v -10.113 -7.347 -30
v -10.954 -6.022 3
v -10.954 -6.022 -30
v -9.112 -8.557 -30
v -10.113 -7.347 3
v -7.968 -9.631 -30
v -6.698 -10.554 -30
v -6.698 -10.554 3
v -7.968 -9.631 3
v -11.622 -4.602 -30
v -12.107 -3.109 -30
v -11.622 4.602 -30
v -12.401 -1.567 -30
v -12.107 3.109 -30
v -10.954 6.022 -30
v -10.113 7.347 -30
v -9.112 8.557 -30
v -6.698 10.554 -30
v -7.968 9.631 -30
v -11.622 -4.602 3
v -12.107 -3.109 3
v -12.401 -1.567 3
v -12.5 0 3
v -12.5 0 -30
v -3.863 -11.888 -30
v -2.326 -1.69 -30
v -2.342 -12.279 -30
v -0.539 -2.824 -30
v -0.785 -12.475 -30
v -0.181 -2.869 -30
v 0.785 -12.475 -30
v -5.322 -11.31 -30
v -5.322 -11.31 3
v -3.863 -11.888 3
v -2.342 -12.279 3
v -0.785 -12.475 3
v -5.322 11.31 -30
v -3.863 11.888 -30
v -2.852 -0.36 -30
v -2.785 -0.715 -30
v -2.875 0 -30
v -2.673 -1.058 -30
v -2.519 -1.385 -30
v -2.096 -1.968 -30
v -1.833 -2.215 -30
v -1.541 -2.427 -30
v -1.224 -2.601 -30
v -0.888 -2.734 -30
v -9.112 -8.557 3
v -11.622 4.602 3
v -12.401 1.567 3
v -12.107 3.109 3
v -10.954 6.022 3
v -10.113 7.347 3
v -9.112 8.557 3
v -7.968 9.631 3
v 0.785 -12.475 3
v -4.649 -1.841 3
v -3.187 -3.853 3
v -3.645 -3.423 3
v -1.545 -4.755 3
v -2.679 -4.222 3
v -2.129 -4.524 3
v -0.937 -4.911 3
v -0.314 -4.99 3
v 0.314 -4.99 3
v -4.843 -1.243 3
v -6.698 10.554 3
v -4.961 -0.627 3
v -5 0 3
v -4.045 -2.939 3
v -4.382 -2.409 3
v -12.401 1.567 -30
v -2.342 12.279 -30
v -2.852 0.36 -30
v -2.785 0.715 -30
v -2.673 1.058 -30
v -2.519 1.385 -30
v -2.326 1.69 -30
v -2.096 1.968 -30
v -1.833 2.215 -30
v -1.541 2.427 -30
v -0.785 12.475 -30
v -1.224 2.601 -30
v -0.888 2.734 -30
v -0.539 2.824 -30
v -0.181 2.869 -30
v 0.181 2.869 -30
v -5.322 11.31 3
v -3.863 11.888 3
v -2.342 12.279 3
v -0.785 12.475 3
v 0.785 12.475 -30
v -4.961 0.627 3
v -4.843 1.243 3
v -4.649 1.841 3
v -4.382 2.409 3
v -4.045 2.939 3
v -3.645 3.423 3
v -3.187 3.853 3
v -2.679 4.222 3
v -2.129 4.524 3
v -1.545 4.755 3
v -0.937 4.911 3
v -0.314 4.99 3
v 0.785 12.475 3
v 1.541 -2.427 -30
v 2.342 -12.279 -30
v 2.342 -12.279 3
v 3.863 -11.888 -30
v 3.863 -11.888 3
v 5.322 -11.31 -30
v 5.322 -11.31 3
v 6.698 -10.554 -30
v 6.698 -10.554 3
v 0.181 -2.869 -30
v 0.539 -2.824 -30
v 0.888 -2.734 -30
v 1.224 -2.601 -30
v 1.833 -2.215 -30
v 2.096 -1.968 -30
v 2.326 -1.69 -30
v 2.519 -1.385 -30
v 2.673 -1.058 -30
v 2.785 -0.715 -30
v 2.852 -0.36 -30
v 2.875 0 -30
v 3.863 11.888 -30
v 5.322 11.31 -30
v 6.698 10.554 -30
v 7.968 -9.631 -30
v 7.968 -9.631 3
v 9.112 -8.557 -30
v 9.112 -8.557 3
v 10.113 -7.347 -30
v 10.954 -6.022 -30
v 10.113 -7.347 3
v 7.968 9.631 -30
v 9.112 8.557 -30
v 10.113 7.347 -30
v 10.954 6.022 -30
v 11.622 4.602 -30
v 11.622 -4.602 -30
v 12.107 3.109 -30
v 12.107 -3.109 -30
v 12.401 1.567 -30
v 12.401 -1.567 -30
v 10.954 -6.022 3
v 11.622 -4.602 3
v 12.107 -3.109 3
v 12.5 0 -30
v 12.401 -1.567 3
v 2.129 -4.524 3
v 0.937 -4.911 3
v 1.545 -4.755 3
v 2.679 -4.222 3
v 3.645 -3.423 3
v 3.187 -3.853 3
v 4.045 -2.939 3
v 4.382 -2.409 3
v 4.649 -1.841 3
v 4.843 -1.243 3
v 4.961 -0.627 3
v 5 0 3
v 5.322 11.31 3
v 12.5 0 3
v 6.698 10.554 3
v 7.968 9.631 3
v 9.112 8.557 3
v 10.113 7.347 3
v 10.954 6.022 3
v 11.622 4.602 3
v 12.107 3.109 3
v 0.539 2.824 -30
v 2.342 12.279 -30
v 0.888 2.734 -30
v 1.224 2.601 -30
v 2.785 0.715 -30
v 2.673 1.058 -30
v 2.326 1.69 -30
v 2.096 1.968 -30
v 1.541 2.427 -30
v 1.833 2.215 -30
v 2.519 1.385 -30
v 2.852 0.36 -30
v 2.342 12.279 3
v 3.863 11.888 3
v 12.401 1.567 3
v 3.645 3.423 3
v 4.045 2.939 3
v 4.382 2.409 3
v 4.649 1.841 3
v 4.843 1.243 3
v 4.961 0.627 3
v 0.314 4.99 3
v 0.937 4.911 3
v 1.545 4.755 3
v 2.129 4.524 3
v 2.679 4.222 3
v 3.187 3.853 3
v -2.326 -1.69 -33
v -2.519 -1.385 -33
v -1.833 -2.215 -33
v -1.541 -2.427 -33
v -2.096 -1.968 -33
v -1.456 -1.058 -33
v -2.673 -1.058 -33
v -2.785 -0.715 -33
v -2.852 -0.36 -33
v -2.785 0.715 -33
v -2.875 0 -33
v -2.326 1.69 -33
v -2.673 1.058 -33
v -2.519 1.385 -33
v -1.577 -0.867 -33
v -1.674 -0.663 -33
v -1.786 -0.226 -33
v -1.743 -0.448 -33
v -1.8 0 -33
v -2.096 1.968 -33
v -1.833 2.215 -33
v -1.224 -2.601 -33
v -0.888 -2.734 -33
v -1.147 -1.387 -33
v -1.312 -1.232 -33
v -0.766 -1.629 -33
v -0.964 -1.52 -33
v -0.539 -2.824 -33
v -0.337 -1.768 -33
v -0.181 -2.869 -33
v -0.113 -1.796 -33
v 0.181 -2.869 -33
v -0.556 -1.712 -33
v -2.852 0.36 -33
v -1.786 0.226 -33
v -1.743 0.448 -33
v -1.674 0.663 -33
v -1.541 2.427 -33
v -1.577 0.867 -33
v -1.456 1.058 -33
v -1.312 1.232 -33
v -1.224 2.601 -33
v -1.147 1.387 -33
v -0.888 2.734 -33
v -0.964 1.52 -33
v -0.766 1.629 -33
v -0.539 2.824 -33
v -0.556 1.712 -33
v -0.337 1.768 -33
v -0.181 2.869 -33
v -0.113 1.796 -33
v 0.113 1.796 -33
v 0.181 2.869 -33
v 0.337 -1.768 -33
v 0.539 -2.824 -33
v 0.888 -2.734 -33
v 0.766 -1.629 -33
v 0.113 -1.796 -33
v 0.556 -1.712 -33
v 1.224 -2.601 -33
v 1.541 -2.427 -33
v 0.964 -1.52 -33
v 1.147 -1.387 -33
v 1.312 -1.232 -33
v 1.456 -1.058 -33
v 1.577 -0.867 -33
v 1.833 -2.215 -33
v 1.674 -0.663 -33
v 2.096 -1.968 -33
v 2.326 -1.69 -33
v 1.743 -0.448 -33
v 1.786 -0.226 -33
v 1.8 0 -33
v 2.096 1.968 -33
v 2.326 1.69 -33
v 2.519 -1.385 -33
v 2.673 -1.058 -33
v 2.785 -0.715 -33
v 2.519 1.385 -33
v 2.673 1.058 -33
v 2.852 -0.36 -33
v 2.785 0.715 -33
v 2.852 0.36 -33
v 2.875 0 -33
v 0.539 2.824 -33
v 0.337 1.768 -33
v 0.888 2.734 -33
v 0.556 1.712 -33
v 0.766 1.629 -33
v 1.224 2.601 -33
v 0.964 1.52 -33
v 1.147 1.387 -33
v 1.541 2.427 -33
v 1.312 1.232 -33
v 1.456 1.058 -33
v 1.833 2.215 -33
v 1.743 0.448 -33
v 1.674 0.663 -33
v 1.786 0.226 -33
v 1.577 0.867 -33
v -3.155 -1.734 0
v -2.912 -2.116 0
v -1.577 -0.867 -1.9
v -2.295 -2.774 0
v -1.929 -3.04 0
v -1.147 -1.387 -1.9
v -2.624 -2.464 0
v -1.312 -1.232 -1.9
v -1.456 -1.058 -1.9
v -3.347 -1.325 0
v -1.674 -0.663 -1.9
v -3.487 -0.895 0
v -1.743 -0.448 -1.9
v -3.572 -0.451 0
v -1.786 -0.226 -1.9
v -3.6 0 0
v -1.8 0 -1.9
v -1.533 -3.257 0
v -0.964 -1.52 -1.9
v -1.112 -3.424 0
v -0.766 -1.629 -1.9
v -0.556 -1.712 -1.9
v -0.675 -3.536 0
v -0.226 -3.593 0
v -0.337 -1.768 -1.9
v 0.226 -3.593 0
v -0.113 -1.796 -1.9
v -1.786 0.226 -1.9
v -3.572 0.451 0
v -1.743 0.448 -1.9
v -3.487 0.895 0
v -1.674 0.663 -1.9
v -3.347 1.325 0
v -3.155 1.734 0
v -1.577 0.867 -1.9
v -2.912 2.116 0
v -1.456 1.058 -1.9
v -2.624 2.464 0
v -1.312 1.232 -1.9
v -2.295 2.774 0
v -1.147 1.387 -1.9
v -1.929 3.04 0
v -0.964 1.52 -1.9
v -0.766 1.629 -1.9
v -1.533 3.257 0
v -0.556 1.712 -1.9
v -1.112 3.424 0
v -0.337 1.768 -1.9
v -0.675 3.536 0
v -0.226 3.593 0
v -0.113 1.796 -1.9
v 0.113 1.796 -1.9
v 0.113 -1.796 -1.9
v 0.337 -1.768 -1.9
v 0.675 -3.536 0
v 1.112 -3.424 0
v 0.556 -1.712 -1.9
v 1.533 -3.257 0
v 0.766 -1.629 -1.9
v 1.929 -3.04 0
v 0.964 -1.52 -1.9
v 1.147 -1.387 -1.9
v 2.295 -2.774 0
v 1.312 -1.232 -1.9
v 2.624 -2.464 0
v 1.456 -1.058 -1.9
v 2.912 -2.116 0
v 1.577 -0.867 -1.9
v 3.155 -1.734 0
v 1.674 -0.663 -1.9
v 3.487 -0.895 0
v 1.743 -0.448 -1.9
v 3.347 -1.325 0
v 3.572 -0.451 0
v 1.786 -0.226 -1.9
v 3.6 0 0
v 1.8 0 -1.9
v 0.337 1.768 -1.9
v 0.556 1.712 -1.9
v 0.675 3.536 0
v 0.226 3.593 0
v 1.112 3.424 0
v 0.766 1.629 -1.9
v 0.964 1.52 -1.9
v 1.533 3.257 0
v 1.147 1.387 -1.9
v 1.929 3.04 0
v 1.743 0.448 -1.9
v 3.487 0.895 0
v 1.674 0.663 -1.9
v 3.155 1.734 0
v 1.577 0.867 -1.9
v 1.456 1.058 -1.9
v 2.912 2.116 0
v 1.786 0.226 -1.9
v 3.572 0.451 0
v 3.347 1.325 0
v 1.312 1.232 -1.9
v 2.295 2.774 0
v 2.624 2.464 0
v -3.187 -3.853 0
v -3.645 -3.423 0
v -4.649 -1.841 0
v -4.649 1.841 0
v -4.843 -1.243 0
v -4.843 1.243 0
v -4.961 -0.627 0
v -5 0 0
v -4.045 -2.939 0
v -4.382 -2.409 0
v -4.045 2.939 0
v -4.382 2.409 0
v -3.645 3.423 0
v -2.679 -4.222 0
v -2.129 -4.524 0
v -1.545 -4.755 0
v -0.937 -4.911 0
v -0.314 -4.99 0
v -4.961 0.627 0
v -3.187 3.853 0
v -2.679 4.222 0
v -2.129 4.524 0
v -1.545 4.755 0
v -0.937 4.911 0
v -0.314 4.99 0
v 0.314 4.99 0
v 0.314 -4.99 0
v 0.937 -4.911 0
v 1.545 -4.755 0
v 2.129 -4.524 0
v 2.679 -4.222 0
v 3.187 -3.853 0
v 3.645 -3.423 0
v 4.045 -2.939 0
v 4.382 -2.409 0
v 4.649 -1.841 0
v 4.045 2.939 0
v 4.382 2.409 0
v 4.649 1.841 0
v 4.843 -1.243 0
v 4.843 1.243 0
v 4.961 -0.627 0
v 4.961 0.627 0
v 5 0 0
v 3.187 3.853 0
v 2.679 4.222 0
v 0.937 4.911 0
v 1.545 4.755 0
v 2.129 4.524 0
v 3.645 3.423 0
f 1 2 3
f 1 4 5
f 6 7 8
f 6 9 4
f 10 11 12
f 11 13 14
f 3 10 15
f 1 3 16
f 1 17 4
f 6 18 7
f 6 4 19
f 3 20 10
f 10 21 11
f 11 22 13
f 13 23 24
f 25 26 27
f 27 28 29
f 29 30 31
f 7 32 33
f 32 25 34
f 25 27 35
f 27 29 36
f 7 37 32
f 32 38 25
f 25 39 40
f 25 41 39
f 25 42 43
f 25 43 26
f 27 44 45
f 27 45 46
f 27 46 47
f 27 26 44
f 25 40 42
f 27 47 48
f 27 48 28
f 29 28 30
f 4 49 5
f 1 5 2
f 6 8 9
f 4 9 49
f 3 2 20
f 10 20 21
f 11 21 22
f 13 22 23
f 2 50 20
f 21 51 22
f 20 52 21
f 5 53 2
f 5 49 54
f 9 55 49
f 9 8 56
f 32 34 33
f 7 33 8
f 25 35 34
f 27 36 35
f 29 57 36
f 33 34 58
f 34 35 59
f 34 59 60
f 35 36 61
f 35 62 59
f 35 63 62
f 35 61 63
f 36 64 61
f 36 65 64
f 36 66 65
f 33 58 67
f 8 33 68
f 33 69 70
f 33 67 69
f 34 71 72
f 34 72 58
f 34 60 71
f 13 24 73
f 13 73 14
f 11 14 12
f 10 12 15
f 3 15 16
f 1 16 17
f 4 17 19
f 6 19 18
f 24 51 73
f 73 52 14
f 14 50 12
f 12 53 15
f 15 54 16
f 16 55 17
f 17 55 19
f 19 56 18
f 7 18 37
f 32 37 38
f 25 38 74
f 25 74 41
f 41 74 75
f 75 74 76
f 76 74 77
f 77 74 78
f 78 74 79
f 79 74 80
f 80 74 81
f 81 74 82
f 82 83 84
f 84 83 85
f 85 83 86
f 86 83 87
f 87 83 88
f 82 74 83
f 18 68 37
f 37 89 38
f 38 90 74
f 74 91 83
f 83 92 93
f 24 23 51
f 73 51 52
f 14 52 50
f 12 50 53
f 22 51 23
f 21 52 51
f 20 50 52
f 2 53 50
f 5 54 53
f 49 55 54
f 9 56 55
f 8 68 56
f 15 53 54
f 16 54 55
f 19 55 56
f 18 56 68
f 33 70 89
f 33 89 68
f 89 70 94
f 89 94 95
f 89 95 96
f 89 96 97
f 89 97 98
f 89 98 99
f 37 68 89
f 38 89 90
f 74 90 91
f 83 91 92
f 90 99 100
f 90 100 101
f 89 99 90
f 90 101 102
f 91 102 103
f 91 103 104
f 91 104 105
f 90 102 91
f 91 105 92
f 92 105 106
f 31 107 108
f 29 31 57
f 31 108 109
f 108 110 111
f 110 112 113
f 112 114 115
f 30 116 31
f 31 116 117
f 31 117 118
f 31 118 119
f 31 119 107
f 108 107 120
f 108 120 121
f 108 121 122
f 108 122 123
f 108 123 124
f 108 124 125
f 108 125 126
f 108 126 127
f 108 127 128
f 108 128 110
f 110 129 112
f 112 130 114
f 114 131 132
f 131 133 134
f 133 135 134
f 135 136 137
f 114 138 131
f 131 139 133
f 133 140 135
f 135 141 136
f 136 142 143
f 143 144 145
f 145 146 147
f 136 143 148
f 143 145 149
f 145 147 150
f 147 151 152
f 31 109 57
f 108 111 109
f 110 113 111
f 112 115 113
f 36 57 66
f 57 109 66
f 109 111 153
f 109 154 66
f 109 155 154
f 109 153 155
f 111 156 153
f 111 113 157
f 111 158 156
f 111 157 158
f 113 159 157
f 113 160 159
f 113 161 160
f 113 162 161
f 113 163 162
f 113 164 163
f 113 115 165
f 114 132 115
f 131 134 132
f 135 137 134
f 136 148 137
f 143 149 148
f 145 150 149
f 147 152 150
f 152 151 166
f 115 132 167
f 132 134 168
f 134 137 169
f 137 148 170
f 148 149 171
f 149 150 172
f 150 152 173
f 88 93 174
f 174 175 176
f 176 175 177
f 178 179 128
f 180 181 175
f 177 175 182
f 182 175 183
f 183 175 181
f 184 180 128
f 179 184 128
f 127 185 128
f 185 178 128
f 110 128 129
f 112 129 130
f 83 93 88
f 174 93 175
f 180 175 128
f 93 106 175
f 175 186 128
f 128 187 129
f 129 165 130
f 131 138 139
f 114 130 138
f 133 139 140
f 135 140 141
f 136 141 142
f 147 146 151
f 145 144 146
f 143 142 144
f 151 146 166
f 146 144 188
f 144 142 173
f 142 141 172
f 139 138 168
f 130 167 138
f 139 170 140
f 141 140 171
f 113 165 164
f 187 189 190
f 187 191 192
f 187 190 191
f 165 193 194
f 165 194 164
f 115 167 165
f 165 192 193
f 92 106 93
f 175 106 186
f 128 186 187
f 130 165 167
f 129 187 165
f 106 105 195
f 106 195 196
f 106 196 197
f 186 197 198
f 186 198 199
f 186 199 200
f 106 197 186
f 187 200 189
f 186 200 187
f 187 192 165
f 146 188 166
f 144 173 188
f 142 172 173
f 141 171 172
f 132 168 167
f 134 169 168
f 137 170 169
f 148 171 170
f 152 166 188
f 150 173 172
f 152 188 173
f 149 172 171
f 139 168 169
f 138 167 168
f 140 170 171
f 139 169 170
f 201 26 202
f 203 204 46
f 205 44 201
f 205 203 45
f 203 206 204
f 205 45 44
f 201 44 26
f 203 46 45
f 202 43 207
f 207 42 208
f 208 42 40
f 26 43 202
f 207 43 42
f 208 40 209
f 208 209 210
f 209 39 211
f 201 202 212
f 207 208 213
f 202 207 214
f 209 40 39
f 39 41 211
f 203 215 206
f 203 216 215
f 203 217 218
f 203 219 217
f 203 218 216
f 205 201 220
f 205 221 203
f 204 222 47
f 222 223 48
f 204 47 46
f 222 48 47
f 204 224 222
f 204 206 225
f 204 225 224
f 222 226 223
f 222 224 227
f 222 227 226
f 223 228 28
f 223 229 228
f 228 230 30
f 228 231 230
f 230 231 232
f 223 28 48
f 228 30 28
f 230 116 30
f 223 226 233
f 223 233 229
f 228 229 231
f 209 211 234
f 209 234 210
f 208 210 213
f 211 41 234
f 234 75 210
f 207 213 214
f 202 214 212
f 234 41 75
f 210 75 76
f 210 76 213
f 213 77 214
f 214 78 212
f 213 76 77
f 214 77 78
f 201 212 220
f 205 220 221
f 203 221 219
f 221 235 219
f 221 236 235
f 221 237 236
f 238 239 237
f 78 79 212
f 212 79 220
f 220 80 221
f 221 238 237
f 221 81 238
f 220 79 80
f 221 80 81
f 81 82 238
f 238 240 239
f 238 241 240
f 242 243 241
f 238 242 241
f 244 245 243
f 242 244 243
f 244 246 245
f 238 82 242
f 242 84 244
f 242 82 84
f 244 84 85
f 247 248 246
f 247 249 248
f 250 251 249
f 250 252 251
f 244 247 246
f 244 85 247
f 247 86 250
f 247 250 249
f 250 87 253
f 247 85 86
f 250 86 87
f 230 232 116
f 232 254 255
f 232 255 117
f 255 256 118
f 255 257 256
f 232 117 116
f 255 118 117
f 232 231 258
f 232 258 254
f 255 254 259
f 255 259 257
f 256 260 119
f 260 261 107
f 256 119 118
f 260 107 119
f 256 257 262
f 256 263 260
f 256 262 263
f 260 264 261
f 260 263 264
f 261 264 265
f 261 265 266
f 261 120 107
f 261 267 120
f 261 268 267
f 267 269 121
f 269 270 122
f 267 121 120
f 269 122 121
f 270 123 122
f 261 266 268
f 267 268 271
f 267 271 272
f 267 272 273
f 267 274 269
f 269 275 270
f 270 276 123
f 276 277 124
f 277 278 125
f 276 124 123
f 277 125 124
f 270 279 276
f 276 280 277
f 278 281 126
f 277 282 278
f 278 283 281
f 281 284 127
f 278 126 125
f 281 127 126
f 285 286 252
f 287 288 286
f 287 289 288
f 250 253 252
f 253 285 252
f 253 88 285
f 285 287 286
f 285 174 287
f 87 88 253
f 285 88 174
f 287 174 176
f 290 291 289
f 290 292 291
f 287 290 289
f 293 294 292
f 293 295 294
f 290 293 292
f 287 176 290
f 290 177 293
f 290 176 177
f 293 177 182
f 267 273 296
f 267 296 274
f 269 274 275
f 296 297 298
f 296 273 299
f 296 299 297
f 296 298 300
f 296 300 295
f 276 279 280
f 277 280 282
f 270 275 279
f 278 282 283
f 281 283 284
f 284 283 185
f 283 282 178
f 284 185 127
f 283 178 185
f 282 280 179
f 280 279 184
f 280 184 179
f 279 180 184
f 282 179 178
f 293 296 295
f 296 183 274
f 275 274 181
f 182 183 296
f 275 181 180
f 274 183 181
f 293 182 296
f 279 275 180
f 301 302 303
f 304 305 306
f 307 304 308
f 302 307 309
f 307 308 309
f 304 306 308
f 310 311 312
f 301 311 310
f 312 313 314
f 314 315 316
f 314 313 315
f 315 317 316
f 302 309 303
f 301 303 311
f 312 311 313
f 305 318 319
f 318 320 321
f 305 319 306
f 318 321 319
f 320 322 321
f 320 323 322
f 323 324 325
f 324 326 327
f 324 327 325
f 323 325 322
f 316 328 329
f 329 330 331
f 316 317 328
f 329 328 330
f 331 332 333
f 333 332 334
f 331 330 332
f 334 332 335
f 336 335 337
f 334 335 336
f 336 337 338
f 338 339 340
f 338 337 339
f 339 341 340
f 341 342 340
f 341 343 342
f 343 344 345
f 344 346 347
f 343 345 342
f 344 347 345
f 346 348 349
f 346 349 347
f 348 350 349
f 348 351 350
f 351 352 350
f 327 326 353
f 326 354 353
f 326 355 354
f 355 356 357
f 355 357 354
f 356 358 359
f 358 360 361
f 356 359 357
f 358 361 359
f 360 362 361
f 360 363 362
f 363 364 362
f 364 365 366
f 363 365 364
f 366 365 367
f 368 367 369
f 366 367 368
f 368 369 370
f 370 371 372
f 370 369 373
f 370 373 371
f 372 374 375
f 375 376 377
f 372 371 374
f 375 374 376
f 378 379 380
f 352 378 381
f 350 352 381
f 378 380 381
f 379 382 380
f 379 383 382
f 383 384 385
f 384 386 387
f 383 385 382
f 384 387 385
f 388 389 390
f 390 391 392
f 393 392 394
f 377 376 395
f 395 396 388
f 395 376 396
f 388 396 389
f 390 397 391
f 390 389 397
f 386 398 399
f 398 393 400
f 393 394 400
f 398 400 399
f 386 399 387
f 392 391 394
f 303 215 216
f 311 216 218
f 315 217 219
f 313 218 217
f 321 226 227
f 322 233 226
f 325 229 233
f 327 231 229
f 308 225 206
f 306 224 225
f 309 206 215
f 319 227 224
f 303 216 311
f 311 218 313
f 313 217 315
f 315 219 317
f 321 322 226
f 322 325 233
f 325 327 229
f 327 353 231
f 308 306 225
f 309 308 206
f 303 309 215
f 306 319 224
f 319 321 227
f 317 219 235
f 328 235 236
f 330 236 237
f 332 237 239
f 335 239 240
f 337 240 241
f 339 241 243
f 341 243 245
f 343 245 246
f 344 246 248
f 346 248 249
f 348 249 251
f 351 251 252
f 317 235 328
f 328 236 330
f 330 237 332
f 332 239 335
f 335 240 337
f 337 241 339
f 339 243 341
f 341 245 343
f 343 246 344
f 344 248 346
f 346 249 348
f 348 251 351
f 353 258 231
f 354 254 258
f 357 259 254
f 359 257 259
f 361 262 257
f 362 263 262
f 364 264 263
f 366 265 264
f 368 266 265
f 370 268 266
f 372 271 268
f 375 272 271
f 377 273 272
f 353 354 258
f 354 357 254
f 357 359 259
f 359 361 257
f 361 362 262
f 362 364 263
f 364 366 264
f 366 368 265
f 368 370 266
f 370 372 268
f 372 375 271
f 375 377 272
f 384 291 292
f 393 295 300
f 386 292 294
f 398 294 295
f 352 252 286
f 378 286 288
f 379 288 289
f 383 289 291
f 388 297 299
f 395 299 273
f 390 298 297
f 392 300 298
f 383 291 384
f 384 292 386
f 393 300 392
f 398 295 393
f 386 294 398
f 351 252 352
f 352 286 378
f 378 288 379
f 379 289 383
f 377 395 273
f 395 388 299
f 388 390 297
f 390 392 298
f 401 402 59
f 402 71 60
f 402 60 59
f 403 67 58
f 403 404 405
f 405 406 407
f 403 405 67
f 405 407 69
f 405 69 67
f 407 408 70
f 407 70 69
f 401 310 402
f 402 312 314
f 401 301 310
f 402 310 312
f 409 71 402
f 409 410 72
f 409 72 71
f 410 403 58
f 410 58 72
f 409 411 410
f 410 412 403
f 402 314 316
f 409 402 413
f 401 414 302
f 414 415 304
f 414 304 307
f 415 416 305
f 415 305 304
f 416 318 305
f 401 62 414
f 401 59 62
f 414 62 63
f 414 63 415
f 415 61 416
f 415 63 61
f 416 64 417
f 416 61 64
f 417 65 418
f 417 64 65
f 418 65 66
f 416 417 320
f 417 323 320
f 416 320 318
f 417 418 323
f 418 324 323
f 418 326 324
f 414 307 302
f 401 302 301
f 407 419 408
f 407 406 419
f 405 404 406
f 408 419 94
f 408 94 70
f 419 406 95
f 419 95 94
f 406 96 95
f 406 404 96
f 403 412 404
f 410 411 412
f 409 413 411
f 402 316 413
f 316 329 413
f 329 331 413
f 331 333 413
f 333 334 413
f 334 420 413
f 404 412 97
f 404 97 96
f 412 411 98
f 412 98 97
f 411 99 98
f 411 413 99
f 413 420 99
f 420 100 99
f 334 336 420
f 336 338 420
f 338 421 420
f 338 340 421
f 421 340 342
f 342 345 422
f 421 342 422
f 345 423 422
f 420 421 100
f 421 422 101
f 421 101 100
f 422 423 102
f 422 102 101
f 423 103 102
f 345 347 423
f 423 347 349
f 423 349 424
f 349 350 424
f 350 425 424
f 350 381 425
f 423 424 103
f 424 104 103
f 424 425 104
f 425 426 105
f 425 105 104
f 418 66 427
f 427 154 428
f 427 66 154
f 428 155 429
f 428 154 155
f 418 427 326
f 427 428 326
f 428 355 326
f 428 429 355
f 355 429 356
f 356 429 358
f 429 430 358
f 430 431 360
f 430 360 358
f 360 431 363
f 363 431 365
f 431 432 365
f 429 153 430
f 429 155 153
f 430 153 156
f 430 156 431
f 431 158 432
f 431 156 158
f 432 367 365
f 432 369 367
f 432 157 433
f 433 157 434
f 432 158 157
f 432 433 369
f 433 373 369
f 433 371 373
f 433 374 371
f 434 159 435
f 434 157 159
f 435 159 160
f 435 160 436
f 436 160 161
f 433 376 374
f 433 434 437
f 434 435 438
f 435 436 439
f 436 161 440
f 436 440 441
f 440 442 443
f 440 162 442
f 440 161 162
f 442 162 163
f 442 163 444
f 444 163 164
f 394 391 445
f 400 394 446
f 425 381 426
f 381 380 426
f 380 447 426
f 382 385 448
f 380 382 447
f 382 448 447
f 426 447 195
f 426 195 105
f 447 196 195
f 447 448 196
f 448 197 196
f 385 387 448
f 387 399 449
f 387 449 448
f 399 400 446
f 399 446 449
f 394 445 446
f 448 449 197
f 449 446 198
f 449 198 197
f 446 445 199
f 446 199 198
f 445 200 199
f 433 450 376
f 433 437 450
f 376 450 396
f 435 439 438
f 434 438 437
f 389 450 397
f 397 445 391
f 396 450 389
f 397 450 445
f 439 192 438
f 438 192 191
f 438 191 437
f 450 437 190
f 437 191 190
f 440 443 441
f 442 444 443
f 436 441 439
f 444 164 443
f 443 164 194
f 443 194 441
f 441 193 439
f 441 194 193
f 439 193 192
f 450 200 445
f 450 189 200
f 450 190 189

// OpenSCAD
$fn = 50;


difference() {
	union() {
		translate(v = [0, 0, -30.0000000000]) {
			cylinder(h = 33, r = 12.5000000000);
		}
		#translate(v = [0, 0, -33.0000000000]) {
			cylinder(h = 33, r = 2.8750000000);
		}
	}
	union() {
		translate(v = [0, 0, 0]) {
			rotate(a = [0, 0, 0]) {
				difference() {
					union() {
						translate(v = [0, 0, -33.0000000000]) {
							cylinder(h = 33, r = 1.5000000000);
						}
						translate(v = [0, 0, -1.9000000000]) {
							cylinder(h = 1.9000000000, r1 = 1.8000000000, r2 = 3.6000000000);
						}
						translate(v = [0, 0, -33.0000000000]) {
							cylinder(h = 33, r = 1.8000000000);
						}
						translate(v = [0, 0, -33.0000000000]) {
							cylinder(h = 33, r = 1.5000000000);
						}
					}
					union();
				}
			}
		}
		#cylinder(h = 3, r = 5.0000000000);
	}
}
